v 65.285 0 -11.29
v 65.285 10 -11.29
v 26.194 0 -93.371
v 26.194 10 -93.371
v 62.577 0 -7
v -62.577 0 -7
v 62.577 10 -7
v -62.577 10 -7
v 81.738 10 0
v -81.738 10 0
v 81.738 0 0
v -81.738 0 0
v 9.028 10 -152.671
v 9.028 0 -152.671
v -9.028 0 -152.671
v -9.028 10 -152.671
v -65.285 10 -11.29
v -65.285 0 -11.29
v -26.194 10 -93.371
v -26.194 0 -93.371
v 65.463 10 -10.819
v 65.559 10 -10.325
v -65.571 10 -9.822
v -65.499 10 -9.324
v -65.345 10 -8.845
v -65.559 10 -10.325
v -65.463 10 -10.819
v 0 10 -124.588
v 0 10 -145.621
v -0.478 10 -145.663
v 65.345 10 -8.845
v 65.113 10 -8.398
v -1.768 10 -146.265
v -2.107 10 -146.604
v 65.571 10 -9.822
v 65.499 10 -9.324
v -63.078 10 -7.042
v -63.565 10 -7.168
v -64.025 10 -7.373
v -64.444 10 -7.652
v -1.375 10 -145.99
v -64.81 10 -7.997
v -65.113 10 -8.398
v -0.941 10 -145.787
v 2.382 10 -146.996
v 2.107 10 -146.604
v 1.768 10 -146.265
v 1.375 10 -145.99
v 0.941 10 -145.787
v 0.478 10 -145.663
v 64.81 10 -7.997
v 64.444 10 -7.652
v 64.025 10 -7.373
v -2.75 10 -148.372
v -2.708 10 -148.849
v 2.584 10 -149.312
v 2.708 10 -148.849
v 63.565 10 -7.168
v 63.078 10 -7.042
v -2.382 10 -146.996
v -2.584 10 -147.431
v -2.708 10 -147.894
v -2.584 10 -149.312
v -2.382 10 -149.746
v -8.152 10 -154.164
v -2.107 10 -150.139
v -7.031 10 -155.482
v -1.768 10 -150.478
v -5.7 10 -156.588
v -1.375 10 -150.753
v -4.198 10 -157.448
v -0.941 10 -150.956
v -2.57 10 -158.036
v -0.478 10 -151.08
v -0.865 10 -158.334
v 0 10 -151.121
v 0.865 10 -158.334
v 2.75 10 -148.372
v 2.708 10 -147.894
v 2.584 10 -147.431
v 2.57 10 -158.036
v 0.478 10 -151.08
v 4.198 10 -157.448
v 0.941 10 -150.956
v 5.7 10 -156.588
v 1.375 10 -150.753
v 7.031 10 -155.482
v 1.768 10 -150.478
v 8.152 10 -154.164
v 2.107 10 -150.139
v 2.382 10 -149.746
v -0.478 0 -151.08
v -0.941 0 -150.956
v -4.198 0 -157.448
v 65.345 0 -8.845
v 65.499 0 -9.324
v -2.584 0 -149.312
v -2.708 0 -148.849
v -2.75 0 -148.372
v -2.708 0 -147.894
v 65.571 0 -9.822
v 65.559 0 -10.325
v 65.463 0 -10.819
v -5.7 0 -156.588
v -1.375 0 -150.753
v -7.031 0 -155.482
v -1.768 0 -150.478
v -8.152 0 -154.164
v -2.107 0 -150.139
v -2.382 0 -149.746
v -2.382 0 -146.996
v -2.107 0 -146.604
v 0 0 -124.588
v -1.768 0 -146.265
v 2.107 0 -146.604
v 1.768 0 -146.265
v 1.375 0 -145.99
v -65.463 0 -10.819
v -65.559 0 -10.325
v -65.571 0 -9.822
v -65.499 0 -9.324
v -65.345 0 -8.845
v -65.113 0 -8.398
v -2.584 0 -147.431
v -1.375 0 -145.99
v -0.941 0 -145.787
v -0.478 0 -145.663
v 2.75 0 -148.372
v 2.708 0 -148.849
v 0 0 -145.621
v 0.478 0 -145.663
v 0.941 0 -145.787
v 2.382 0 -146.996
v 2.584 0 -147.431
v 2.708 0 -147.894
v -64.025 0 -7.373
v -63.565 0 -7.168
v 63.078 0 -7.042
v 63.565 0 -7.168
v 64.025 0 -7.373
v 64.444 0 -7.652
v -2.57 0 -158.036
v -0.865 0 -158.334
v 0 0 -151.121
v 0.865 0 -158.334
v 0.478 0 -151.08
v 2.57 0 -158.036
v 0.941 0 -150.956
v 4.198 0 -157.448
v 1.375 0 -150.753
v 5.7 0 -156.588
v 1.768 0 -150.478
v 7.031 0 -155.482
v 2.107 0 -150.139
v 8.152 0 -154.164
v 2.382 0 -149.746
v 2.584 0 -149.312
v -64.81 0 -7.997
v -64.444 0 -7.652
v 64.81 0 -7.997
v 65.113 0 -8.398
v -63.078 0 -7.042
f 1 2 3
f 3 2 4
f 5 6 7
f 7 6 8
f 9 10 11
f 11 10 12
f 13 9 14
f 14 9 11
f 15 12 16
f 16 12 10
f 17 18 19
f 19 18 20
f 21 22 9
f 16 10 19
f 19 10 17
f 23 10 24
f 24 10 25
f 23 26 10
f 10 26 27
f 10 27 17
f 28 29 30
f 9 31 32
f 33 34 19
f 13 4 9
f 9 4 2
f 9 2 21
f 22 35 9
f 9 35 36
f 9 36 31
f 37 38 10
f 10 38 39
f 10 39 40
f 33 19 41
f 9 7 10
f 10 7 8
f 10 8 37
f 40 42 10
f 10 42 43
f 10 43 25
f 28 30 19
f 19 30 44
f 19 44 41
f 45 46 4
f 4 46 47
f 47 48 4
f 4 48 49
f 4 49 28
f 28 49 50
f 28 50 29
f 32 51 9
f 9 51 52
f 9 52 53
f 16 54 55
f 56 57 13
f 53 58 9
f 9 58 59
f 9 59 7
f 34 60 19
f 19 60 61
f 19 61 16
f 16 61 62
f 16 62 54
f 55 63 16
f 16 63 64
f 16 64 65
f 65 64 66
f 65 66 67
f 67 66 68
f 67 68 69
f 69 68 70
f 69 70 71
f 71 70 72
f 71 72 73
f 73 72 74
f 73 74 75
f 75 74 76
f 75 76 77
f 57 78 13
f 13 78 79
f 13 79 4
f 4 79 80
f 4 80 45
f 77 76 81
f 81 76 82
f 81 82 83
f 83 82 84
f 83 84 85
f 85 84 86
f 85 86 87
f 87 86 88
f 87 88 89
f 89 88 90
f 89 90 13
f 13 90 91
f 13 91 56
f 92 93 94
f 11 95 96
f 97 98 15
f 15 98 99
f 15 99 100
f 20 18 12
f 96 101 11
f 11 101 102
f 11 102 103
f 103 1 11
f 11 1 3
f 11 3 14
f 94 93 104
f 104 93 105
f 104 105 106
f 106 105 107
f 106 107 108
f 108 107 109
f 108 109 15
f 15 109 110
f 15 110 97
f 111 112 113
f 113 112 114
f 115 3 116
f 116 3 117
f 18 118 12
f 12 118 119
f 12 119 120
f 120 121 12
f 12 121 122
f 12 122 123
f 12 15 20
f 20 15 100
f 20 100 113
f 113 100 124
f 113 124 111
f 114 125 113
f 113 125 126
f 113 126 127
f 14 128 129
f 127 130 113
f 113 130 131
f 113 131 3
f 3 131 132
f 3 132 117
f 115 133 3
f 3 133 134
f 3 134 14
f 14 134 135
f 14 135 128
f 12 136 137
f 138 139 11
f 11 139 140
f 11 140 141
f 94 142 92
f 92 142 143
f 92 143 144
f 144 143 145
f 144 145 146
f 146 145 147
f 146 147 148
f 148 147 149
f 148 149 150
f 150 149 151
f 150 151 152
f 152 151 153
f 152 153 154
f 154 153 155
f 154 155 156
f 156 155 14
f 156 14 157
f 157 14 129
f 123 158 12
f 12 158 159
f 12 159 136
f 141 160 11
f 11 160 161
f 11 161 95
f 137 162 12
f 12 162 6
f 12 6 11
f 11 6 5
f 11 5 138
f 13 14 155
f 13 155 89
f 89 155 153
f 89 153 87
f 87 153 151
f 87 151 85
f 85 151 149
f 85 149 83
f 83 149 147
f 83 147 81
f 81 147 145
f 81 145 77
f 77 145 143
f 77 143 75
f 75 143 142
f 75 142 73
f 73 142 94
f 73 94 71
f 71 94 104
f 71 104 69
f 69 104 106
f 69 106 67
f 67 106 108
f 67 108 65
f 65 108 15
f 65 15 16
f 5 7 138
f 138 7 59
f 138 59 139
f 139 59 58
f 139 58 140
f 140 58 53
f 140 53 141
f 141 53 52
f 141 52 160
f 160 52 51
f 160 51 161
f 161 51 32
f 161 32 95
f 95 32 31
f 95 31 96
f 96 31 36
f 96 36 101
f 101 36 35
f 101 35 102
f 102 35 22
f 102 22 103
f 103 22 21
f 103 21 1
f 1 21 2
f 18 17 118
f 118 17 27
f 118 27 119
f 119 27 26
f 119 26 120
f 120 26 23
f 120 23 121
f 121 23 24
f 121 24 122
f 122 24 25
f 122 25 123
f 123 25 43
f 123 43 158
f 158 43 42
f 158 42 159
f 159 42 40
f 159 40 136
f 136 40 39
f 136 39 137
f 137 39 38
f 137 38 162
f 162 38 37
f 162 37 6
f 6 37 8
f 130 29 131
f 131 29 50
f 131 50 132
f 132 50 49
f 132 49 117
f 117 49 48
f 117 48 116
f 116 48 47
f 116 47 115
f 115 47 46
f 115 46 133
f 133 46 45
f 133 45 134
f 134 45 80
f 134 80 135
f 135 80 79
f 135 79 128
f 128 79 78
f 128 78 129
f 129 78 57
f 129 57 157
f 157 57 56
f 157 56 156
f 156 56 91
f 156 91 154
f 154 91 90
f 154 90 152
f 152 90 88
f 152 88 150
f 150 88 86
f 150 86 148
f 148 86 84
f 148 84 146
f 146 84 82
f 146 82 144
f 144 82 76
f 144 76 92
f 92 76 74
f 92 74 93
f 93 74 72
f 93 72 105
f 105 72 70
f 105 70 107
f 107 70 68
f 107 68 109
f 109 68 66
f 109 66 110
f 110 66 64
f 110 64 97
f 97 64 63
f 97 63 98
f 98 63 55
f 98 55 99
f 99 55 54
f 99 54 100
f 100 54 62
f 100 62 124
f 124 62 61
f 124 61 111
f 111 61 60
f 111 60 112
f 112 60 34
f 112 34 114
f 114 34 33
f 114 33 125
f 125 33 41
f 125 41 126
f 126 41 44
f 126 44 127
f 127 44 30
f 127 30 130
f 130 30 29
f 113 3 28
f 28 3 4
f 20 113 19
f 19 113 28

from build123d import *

# Parameters (mm, degrees)
BOSS_EXTRUDE1_DEPTH = 10
FILLET1_R           = 10
FILLET2_R           = 3
SKETCH5_R           = 10
BOSS_EXTRUDE2_DEPTH = 10
SKETCH4_R           = 2.75
CUT_EXTRUDE1_DEPTH  = 10
BOSS_EXTRUDE3_DEPTH = 10


with BuildPart() as part:
    # Sketch1 → Boss-Extrude1 (new body)
    with BuildSketch(Plane(origin=(0, 0, 0), x_dir=(1, 0, 0), z_dir=(0, 1, 0))):
        Polygon((-81.738081939, 0), (0, 171.628518507), (81.738081939, 0), align=None)
        Polygon((0, 148.371481493), (-67.328168061, 7), (67.328168061, 7), align=None, mode=Mode.SUBTRACT)
    extrude(amount=BOSS_EXTRUDE1_DEPTH)

    # Fillet1
    fillet1_edges = [part.edges().sort_by_distance(p)[0] for p in [
        (0, 5, -171.628518507),
    ]]
    fillet(fillet1_edges, radius=FILLET1_R)

    # Fillet2
    fillet2_edges = [part.edges().sort_by_distance(p)[0] for p in [
        (0, 5, -148.371481493),
        (-67.328168061, 5, -7),
        (67.328168061, 5, -7),
    ]]
    fillet(fillet2_edges, radius=FILLET2_R)

    # Sketch5 → Boss-Extrude2 (add, through all)
    with BuildSketch(Plane(origin=(0, 10, 0), x_dir=(1, 0, 0), z_dir=(0, 1, 0))):
        with Locations((0, 148.371481493)):
            Circle(SKETCH5_R)
    extrude(amount=-BOSS_EXTRUDE2_DEPTH)

    # Sketch4 → Cut-Extrude1 (cut)
    with BuildSketch(Plane(origin=(0, 10, 0), x_dir=(1, 0, 0), z_dir=(0, 1, 0))):
        with Locations((0, 148.371481493)):
            Circle(SKETCH4_R)
    extrude(amount=-CUT_EXTRUDE1_DEPTH, mode=Mode.SUBTRACT)

    # Sketch6 → Boss-Extrude3 (add, through all)
    with BuildSketch(Plane(origin=(0, 10, 0), x_dir=(1, 0, 0), z_dir=(0, 1, 0))):
        with BuildLine():
            Line((-26.19375, 93.371481493), (0, 124.587977159))
            Line((0, 124.587977159), (26.19375, 93.371481493))
            Line((26.19375, 93.371481493), (4.299773868, 139.34308492))
            ThreePointArc((4.299773868, 139.34308492), (0, 138.371481493), (-4.299773868, 139.34308492))
            Line((-4.299773868, 139.34308492), (-26.19375, 93.371481493))
        make_face()
    extrude(amount=-BOSS_EXTRUDE3_DEPTH)


solid = part.part
